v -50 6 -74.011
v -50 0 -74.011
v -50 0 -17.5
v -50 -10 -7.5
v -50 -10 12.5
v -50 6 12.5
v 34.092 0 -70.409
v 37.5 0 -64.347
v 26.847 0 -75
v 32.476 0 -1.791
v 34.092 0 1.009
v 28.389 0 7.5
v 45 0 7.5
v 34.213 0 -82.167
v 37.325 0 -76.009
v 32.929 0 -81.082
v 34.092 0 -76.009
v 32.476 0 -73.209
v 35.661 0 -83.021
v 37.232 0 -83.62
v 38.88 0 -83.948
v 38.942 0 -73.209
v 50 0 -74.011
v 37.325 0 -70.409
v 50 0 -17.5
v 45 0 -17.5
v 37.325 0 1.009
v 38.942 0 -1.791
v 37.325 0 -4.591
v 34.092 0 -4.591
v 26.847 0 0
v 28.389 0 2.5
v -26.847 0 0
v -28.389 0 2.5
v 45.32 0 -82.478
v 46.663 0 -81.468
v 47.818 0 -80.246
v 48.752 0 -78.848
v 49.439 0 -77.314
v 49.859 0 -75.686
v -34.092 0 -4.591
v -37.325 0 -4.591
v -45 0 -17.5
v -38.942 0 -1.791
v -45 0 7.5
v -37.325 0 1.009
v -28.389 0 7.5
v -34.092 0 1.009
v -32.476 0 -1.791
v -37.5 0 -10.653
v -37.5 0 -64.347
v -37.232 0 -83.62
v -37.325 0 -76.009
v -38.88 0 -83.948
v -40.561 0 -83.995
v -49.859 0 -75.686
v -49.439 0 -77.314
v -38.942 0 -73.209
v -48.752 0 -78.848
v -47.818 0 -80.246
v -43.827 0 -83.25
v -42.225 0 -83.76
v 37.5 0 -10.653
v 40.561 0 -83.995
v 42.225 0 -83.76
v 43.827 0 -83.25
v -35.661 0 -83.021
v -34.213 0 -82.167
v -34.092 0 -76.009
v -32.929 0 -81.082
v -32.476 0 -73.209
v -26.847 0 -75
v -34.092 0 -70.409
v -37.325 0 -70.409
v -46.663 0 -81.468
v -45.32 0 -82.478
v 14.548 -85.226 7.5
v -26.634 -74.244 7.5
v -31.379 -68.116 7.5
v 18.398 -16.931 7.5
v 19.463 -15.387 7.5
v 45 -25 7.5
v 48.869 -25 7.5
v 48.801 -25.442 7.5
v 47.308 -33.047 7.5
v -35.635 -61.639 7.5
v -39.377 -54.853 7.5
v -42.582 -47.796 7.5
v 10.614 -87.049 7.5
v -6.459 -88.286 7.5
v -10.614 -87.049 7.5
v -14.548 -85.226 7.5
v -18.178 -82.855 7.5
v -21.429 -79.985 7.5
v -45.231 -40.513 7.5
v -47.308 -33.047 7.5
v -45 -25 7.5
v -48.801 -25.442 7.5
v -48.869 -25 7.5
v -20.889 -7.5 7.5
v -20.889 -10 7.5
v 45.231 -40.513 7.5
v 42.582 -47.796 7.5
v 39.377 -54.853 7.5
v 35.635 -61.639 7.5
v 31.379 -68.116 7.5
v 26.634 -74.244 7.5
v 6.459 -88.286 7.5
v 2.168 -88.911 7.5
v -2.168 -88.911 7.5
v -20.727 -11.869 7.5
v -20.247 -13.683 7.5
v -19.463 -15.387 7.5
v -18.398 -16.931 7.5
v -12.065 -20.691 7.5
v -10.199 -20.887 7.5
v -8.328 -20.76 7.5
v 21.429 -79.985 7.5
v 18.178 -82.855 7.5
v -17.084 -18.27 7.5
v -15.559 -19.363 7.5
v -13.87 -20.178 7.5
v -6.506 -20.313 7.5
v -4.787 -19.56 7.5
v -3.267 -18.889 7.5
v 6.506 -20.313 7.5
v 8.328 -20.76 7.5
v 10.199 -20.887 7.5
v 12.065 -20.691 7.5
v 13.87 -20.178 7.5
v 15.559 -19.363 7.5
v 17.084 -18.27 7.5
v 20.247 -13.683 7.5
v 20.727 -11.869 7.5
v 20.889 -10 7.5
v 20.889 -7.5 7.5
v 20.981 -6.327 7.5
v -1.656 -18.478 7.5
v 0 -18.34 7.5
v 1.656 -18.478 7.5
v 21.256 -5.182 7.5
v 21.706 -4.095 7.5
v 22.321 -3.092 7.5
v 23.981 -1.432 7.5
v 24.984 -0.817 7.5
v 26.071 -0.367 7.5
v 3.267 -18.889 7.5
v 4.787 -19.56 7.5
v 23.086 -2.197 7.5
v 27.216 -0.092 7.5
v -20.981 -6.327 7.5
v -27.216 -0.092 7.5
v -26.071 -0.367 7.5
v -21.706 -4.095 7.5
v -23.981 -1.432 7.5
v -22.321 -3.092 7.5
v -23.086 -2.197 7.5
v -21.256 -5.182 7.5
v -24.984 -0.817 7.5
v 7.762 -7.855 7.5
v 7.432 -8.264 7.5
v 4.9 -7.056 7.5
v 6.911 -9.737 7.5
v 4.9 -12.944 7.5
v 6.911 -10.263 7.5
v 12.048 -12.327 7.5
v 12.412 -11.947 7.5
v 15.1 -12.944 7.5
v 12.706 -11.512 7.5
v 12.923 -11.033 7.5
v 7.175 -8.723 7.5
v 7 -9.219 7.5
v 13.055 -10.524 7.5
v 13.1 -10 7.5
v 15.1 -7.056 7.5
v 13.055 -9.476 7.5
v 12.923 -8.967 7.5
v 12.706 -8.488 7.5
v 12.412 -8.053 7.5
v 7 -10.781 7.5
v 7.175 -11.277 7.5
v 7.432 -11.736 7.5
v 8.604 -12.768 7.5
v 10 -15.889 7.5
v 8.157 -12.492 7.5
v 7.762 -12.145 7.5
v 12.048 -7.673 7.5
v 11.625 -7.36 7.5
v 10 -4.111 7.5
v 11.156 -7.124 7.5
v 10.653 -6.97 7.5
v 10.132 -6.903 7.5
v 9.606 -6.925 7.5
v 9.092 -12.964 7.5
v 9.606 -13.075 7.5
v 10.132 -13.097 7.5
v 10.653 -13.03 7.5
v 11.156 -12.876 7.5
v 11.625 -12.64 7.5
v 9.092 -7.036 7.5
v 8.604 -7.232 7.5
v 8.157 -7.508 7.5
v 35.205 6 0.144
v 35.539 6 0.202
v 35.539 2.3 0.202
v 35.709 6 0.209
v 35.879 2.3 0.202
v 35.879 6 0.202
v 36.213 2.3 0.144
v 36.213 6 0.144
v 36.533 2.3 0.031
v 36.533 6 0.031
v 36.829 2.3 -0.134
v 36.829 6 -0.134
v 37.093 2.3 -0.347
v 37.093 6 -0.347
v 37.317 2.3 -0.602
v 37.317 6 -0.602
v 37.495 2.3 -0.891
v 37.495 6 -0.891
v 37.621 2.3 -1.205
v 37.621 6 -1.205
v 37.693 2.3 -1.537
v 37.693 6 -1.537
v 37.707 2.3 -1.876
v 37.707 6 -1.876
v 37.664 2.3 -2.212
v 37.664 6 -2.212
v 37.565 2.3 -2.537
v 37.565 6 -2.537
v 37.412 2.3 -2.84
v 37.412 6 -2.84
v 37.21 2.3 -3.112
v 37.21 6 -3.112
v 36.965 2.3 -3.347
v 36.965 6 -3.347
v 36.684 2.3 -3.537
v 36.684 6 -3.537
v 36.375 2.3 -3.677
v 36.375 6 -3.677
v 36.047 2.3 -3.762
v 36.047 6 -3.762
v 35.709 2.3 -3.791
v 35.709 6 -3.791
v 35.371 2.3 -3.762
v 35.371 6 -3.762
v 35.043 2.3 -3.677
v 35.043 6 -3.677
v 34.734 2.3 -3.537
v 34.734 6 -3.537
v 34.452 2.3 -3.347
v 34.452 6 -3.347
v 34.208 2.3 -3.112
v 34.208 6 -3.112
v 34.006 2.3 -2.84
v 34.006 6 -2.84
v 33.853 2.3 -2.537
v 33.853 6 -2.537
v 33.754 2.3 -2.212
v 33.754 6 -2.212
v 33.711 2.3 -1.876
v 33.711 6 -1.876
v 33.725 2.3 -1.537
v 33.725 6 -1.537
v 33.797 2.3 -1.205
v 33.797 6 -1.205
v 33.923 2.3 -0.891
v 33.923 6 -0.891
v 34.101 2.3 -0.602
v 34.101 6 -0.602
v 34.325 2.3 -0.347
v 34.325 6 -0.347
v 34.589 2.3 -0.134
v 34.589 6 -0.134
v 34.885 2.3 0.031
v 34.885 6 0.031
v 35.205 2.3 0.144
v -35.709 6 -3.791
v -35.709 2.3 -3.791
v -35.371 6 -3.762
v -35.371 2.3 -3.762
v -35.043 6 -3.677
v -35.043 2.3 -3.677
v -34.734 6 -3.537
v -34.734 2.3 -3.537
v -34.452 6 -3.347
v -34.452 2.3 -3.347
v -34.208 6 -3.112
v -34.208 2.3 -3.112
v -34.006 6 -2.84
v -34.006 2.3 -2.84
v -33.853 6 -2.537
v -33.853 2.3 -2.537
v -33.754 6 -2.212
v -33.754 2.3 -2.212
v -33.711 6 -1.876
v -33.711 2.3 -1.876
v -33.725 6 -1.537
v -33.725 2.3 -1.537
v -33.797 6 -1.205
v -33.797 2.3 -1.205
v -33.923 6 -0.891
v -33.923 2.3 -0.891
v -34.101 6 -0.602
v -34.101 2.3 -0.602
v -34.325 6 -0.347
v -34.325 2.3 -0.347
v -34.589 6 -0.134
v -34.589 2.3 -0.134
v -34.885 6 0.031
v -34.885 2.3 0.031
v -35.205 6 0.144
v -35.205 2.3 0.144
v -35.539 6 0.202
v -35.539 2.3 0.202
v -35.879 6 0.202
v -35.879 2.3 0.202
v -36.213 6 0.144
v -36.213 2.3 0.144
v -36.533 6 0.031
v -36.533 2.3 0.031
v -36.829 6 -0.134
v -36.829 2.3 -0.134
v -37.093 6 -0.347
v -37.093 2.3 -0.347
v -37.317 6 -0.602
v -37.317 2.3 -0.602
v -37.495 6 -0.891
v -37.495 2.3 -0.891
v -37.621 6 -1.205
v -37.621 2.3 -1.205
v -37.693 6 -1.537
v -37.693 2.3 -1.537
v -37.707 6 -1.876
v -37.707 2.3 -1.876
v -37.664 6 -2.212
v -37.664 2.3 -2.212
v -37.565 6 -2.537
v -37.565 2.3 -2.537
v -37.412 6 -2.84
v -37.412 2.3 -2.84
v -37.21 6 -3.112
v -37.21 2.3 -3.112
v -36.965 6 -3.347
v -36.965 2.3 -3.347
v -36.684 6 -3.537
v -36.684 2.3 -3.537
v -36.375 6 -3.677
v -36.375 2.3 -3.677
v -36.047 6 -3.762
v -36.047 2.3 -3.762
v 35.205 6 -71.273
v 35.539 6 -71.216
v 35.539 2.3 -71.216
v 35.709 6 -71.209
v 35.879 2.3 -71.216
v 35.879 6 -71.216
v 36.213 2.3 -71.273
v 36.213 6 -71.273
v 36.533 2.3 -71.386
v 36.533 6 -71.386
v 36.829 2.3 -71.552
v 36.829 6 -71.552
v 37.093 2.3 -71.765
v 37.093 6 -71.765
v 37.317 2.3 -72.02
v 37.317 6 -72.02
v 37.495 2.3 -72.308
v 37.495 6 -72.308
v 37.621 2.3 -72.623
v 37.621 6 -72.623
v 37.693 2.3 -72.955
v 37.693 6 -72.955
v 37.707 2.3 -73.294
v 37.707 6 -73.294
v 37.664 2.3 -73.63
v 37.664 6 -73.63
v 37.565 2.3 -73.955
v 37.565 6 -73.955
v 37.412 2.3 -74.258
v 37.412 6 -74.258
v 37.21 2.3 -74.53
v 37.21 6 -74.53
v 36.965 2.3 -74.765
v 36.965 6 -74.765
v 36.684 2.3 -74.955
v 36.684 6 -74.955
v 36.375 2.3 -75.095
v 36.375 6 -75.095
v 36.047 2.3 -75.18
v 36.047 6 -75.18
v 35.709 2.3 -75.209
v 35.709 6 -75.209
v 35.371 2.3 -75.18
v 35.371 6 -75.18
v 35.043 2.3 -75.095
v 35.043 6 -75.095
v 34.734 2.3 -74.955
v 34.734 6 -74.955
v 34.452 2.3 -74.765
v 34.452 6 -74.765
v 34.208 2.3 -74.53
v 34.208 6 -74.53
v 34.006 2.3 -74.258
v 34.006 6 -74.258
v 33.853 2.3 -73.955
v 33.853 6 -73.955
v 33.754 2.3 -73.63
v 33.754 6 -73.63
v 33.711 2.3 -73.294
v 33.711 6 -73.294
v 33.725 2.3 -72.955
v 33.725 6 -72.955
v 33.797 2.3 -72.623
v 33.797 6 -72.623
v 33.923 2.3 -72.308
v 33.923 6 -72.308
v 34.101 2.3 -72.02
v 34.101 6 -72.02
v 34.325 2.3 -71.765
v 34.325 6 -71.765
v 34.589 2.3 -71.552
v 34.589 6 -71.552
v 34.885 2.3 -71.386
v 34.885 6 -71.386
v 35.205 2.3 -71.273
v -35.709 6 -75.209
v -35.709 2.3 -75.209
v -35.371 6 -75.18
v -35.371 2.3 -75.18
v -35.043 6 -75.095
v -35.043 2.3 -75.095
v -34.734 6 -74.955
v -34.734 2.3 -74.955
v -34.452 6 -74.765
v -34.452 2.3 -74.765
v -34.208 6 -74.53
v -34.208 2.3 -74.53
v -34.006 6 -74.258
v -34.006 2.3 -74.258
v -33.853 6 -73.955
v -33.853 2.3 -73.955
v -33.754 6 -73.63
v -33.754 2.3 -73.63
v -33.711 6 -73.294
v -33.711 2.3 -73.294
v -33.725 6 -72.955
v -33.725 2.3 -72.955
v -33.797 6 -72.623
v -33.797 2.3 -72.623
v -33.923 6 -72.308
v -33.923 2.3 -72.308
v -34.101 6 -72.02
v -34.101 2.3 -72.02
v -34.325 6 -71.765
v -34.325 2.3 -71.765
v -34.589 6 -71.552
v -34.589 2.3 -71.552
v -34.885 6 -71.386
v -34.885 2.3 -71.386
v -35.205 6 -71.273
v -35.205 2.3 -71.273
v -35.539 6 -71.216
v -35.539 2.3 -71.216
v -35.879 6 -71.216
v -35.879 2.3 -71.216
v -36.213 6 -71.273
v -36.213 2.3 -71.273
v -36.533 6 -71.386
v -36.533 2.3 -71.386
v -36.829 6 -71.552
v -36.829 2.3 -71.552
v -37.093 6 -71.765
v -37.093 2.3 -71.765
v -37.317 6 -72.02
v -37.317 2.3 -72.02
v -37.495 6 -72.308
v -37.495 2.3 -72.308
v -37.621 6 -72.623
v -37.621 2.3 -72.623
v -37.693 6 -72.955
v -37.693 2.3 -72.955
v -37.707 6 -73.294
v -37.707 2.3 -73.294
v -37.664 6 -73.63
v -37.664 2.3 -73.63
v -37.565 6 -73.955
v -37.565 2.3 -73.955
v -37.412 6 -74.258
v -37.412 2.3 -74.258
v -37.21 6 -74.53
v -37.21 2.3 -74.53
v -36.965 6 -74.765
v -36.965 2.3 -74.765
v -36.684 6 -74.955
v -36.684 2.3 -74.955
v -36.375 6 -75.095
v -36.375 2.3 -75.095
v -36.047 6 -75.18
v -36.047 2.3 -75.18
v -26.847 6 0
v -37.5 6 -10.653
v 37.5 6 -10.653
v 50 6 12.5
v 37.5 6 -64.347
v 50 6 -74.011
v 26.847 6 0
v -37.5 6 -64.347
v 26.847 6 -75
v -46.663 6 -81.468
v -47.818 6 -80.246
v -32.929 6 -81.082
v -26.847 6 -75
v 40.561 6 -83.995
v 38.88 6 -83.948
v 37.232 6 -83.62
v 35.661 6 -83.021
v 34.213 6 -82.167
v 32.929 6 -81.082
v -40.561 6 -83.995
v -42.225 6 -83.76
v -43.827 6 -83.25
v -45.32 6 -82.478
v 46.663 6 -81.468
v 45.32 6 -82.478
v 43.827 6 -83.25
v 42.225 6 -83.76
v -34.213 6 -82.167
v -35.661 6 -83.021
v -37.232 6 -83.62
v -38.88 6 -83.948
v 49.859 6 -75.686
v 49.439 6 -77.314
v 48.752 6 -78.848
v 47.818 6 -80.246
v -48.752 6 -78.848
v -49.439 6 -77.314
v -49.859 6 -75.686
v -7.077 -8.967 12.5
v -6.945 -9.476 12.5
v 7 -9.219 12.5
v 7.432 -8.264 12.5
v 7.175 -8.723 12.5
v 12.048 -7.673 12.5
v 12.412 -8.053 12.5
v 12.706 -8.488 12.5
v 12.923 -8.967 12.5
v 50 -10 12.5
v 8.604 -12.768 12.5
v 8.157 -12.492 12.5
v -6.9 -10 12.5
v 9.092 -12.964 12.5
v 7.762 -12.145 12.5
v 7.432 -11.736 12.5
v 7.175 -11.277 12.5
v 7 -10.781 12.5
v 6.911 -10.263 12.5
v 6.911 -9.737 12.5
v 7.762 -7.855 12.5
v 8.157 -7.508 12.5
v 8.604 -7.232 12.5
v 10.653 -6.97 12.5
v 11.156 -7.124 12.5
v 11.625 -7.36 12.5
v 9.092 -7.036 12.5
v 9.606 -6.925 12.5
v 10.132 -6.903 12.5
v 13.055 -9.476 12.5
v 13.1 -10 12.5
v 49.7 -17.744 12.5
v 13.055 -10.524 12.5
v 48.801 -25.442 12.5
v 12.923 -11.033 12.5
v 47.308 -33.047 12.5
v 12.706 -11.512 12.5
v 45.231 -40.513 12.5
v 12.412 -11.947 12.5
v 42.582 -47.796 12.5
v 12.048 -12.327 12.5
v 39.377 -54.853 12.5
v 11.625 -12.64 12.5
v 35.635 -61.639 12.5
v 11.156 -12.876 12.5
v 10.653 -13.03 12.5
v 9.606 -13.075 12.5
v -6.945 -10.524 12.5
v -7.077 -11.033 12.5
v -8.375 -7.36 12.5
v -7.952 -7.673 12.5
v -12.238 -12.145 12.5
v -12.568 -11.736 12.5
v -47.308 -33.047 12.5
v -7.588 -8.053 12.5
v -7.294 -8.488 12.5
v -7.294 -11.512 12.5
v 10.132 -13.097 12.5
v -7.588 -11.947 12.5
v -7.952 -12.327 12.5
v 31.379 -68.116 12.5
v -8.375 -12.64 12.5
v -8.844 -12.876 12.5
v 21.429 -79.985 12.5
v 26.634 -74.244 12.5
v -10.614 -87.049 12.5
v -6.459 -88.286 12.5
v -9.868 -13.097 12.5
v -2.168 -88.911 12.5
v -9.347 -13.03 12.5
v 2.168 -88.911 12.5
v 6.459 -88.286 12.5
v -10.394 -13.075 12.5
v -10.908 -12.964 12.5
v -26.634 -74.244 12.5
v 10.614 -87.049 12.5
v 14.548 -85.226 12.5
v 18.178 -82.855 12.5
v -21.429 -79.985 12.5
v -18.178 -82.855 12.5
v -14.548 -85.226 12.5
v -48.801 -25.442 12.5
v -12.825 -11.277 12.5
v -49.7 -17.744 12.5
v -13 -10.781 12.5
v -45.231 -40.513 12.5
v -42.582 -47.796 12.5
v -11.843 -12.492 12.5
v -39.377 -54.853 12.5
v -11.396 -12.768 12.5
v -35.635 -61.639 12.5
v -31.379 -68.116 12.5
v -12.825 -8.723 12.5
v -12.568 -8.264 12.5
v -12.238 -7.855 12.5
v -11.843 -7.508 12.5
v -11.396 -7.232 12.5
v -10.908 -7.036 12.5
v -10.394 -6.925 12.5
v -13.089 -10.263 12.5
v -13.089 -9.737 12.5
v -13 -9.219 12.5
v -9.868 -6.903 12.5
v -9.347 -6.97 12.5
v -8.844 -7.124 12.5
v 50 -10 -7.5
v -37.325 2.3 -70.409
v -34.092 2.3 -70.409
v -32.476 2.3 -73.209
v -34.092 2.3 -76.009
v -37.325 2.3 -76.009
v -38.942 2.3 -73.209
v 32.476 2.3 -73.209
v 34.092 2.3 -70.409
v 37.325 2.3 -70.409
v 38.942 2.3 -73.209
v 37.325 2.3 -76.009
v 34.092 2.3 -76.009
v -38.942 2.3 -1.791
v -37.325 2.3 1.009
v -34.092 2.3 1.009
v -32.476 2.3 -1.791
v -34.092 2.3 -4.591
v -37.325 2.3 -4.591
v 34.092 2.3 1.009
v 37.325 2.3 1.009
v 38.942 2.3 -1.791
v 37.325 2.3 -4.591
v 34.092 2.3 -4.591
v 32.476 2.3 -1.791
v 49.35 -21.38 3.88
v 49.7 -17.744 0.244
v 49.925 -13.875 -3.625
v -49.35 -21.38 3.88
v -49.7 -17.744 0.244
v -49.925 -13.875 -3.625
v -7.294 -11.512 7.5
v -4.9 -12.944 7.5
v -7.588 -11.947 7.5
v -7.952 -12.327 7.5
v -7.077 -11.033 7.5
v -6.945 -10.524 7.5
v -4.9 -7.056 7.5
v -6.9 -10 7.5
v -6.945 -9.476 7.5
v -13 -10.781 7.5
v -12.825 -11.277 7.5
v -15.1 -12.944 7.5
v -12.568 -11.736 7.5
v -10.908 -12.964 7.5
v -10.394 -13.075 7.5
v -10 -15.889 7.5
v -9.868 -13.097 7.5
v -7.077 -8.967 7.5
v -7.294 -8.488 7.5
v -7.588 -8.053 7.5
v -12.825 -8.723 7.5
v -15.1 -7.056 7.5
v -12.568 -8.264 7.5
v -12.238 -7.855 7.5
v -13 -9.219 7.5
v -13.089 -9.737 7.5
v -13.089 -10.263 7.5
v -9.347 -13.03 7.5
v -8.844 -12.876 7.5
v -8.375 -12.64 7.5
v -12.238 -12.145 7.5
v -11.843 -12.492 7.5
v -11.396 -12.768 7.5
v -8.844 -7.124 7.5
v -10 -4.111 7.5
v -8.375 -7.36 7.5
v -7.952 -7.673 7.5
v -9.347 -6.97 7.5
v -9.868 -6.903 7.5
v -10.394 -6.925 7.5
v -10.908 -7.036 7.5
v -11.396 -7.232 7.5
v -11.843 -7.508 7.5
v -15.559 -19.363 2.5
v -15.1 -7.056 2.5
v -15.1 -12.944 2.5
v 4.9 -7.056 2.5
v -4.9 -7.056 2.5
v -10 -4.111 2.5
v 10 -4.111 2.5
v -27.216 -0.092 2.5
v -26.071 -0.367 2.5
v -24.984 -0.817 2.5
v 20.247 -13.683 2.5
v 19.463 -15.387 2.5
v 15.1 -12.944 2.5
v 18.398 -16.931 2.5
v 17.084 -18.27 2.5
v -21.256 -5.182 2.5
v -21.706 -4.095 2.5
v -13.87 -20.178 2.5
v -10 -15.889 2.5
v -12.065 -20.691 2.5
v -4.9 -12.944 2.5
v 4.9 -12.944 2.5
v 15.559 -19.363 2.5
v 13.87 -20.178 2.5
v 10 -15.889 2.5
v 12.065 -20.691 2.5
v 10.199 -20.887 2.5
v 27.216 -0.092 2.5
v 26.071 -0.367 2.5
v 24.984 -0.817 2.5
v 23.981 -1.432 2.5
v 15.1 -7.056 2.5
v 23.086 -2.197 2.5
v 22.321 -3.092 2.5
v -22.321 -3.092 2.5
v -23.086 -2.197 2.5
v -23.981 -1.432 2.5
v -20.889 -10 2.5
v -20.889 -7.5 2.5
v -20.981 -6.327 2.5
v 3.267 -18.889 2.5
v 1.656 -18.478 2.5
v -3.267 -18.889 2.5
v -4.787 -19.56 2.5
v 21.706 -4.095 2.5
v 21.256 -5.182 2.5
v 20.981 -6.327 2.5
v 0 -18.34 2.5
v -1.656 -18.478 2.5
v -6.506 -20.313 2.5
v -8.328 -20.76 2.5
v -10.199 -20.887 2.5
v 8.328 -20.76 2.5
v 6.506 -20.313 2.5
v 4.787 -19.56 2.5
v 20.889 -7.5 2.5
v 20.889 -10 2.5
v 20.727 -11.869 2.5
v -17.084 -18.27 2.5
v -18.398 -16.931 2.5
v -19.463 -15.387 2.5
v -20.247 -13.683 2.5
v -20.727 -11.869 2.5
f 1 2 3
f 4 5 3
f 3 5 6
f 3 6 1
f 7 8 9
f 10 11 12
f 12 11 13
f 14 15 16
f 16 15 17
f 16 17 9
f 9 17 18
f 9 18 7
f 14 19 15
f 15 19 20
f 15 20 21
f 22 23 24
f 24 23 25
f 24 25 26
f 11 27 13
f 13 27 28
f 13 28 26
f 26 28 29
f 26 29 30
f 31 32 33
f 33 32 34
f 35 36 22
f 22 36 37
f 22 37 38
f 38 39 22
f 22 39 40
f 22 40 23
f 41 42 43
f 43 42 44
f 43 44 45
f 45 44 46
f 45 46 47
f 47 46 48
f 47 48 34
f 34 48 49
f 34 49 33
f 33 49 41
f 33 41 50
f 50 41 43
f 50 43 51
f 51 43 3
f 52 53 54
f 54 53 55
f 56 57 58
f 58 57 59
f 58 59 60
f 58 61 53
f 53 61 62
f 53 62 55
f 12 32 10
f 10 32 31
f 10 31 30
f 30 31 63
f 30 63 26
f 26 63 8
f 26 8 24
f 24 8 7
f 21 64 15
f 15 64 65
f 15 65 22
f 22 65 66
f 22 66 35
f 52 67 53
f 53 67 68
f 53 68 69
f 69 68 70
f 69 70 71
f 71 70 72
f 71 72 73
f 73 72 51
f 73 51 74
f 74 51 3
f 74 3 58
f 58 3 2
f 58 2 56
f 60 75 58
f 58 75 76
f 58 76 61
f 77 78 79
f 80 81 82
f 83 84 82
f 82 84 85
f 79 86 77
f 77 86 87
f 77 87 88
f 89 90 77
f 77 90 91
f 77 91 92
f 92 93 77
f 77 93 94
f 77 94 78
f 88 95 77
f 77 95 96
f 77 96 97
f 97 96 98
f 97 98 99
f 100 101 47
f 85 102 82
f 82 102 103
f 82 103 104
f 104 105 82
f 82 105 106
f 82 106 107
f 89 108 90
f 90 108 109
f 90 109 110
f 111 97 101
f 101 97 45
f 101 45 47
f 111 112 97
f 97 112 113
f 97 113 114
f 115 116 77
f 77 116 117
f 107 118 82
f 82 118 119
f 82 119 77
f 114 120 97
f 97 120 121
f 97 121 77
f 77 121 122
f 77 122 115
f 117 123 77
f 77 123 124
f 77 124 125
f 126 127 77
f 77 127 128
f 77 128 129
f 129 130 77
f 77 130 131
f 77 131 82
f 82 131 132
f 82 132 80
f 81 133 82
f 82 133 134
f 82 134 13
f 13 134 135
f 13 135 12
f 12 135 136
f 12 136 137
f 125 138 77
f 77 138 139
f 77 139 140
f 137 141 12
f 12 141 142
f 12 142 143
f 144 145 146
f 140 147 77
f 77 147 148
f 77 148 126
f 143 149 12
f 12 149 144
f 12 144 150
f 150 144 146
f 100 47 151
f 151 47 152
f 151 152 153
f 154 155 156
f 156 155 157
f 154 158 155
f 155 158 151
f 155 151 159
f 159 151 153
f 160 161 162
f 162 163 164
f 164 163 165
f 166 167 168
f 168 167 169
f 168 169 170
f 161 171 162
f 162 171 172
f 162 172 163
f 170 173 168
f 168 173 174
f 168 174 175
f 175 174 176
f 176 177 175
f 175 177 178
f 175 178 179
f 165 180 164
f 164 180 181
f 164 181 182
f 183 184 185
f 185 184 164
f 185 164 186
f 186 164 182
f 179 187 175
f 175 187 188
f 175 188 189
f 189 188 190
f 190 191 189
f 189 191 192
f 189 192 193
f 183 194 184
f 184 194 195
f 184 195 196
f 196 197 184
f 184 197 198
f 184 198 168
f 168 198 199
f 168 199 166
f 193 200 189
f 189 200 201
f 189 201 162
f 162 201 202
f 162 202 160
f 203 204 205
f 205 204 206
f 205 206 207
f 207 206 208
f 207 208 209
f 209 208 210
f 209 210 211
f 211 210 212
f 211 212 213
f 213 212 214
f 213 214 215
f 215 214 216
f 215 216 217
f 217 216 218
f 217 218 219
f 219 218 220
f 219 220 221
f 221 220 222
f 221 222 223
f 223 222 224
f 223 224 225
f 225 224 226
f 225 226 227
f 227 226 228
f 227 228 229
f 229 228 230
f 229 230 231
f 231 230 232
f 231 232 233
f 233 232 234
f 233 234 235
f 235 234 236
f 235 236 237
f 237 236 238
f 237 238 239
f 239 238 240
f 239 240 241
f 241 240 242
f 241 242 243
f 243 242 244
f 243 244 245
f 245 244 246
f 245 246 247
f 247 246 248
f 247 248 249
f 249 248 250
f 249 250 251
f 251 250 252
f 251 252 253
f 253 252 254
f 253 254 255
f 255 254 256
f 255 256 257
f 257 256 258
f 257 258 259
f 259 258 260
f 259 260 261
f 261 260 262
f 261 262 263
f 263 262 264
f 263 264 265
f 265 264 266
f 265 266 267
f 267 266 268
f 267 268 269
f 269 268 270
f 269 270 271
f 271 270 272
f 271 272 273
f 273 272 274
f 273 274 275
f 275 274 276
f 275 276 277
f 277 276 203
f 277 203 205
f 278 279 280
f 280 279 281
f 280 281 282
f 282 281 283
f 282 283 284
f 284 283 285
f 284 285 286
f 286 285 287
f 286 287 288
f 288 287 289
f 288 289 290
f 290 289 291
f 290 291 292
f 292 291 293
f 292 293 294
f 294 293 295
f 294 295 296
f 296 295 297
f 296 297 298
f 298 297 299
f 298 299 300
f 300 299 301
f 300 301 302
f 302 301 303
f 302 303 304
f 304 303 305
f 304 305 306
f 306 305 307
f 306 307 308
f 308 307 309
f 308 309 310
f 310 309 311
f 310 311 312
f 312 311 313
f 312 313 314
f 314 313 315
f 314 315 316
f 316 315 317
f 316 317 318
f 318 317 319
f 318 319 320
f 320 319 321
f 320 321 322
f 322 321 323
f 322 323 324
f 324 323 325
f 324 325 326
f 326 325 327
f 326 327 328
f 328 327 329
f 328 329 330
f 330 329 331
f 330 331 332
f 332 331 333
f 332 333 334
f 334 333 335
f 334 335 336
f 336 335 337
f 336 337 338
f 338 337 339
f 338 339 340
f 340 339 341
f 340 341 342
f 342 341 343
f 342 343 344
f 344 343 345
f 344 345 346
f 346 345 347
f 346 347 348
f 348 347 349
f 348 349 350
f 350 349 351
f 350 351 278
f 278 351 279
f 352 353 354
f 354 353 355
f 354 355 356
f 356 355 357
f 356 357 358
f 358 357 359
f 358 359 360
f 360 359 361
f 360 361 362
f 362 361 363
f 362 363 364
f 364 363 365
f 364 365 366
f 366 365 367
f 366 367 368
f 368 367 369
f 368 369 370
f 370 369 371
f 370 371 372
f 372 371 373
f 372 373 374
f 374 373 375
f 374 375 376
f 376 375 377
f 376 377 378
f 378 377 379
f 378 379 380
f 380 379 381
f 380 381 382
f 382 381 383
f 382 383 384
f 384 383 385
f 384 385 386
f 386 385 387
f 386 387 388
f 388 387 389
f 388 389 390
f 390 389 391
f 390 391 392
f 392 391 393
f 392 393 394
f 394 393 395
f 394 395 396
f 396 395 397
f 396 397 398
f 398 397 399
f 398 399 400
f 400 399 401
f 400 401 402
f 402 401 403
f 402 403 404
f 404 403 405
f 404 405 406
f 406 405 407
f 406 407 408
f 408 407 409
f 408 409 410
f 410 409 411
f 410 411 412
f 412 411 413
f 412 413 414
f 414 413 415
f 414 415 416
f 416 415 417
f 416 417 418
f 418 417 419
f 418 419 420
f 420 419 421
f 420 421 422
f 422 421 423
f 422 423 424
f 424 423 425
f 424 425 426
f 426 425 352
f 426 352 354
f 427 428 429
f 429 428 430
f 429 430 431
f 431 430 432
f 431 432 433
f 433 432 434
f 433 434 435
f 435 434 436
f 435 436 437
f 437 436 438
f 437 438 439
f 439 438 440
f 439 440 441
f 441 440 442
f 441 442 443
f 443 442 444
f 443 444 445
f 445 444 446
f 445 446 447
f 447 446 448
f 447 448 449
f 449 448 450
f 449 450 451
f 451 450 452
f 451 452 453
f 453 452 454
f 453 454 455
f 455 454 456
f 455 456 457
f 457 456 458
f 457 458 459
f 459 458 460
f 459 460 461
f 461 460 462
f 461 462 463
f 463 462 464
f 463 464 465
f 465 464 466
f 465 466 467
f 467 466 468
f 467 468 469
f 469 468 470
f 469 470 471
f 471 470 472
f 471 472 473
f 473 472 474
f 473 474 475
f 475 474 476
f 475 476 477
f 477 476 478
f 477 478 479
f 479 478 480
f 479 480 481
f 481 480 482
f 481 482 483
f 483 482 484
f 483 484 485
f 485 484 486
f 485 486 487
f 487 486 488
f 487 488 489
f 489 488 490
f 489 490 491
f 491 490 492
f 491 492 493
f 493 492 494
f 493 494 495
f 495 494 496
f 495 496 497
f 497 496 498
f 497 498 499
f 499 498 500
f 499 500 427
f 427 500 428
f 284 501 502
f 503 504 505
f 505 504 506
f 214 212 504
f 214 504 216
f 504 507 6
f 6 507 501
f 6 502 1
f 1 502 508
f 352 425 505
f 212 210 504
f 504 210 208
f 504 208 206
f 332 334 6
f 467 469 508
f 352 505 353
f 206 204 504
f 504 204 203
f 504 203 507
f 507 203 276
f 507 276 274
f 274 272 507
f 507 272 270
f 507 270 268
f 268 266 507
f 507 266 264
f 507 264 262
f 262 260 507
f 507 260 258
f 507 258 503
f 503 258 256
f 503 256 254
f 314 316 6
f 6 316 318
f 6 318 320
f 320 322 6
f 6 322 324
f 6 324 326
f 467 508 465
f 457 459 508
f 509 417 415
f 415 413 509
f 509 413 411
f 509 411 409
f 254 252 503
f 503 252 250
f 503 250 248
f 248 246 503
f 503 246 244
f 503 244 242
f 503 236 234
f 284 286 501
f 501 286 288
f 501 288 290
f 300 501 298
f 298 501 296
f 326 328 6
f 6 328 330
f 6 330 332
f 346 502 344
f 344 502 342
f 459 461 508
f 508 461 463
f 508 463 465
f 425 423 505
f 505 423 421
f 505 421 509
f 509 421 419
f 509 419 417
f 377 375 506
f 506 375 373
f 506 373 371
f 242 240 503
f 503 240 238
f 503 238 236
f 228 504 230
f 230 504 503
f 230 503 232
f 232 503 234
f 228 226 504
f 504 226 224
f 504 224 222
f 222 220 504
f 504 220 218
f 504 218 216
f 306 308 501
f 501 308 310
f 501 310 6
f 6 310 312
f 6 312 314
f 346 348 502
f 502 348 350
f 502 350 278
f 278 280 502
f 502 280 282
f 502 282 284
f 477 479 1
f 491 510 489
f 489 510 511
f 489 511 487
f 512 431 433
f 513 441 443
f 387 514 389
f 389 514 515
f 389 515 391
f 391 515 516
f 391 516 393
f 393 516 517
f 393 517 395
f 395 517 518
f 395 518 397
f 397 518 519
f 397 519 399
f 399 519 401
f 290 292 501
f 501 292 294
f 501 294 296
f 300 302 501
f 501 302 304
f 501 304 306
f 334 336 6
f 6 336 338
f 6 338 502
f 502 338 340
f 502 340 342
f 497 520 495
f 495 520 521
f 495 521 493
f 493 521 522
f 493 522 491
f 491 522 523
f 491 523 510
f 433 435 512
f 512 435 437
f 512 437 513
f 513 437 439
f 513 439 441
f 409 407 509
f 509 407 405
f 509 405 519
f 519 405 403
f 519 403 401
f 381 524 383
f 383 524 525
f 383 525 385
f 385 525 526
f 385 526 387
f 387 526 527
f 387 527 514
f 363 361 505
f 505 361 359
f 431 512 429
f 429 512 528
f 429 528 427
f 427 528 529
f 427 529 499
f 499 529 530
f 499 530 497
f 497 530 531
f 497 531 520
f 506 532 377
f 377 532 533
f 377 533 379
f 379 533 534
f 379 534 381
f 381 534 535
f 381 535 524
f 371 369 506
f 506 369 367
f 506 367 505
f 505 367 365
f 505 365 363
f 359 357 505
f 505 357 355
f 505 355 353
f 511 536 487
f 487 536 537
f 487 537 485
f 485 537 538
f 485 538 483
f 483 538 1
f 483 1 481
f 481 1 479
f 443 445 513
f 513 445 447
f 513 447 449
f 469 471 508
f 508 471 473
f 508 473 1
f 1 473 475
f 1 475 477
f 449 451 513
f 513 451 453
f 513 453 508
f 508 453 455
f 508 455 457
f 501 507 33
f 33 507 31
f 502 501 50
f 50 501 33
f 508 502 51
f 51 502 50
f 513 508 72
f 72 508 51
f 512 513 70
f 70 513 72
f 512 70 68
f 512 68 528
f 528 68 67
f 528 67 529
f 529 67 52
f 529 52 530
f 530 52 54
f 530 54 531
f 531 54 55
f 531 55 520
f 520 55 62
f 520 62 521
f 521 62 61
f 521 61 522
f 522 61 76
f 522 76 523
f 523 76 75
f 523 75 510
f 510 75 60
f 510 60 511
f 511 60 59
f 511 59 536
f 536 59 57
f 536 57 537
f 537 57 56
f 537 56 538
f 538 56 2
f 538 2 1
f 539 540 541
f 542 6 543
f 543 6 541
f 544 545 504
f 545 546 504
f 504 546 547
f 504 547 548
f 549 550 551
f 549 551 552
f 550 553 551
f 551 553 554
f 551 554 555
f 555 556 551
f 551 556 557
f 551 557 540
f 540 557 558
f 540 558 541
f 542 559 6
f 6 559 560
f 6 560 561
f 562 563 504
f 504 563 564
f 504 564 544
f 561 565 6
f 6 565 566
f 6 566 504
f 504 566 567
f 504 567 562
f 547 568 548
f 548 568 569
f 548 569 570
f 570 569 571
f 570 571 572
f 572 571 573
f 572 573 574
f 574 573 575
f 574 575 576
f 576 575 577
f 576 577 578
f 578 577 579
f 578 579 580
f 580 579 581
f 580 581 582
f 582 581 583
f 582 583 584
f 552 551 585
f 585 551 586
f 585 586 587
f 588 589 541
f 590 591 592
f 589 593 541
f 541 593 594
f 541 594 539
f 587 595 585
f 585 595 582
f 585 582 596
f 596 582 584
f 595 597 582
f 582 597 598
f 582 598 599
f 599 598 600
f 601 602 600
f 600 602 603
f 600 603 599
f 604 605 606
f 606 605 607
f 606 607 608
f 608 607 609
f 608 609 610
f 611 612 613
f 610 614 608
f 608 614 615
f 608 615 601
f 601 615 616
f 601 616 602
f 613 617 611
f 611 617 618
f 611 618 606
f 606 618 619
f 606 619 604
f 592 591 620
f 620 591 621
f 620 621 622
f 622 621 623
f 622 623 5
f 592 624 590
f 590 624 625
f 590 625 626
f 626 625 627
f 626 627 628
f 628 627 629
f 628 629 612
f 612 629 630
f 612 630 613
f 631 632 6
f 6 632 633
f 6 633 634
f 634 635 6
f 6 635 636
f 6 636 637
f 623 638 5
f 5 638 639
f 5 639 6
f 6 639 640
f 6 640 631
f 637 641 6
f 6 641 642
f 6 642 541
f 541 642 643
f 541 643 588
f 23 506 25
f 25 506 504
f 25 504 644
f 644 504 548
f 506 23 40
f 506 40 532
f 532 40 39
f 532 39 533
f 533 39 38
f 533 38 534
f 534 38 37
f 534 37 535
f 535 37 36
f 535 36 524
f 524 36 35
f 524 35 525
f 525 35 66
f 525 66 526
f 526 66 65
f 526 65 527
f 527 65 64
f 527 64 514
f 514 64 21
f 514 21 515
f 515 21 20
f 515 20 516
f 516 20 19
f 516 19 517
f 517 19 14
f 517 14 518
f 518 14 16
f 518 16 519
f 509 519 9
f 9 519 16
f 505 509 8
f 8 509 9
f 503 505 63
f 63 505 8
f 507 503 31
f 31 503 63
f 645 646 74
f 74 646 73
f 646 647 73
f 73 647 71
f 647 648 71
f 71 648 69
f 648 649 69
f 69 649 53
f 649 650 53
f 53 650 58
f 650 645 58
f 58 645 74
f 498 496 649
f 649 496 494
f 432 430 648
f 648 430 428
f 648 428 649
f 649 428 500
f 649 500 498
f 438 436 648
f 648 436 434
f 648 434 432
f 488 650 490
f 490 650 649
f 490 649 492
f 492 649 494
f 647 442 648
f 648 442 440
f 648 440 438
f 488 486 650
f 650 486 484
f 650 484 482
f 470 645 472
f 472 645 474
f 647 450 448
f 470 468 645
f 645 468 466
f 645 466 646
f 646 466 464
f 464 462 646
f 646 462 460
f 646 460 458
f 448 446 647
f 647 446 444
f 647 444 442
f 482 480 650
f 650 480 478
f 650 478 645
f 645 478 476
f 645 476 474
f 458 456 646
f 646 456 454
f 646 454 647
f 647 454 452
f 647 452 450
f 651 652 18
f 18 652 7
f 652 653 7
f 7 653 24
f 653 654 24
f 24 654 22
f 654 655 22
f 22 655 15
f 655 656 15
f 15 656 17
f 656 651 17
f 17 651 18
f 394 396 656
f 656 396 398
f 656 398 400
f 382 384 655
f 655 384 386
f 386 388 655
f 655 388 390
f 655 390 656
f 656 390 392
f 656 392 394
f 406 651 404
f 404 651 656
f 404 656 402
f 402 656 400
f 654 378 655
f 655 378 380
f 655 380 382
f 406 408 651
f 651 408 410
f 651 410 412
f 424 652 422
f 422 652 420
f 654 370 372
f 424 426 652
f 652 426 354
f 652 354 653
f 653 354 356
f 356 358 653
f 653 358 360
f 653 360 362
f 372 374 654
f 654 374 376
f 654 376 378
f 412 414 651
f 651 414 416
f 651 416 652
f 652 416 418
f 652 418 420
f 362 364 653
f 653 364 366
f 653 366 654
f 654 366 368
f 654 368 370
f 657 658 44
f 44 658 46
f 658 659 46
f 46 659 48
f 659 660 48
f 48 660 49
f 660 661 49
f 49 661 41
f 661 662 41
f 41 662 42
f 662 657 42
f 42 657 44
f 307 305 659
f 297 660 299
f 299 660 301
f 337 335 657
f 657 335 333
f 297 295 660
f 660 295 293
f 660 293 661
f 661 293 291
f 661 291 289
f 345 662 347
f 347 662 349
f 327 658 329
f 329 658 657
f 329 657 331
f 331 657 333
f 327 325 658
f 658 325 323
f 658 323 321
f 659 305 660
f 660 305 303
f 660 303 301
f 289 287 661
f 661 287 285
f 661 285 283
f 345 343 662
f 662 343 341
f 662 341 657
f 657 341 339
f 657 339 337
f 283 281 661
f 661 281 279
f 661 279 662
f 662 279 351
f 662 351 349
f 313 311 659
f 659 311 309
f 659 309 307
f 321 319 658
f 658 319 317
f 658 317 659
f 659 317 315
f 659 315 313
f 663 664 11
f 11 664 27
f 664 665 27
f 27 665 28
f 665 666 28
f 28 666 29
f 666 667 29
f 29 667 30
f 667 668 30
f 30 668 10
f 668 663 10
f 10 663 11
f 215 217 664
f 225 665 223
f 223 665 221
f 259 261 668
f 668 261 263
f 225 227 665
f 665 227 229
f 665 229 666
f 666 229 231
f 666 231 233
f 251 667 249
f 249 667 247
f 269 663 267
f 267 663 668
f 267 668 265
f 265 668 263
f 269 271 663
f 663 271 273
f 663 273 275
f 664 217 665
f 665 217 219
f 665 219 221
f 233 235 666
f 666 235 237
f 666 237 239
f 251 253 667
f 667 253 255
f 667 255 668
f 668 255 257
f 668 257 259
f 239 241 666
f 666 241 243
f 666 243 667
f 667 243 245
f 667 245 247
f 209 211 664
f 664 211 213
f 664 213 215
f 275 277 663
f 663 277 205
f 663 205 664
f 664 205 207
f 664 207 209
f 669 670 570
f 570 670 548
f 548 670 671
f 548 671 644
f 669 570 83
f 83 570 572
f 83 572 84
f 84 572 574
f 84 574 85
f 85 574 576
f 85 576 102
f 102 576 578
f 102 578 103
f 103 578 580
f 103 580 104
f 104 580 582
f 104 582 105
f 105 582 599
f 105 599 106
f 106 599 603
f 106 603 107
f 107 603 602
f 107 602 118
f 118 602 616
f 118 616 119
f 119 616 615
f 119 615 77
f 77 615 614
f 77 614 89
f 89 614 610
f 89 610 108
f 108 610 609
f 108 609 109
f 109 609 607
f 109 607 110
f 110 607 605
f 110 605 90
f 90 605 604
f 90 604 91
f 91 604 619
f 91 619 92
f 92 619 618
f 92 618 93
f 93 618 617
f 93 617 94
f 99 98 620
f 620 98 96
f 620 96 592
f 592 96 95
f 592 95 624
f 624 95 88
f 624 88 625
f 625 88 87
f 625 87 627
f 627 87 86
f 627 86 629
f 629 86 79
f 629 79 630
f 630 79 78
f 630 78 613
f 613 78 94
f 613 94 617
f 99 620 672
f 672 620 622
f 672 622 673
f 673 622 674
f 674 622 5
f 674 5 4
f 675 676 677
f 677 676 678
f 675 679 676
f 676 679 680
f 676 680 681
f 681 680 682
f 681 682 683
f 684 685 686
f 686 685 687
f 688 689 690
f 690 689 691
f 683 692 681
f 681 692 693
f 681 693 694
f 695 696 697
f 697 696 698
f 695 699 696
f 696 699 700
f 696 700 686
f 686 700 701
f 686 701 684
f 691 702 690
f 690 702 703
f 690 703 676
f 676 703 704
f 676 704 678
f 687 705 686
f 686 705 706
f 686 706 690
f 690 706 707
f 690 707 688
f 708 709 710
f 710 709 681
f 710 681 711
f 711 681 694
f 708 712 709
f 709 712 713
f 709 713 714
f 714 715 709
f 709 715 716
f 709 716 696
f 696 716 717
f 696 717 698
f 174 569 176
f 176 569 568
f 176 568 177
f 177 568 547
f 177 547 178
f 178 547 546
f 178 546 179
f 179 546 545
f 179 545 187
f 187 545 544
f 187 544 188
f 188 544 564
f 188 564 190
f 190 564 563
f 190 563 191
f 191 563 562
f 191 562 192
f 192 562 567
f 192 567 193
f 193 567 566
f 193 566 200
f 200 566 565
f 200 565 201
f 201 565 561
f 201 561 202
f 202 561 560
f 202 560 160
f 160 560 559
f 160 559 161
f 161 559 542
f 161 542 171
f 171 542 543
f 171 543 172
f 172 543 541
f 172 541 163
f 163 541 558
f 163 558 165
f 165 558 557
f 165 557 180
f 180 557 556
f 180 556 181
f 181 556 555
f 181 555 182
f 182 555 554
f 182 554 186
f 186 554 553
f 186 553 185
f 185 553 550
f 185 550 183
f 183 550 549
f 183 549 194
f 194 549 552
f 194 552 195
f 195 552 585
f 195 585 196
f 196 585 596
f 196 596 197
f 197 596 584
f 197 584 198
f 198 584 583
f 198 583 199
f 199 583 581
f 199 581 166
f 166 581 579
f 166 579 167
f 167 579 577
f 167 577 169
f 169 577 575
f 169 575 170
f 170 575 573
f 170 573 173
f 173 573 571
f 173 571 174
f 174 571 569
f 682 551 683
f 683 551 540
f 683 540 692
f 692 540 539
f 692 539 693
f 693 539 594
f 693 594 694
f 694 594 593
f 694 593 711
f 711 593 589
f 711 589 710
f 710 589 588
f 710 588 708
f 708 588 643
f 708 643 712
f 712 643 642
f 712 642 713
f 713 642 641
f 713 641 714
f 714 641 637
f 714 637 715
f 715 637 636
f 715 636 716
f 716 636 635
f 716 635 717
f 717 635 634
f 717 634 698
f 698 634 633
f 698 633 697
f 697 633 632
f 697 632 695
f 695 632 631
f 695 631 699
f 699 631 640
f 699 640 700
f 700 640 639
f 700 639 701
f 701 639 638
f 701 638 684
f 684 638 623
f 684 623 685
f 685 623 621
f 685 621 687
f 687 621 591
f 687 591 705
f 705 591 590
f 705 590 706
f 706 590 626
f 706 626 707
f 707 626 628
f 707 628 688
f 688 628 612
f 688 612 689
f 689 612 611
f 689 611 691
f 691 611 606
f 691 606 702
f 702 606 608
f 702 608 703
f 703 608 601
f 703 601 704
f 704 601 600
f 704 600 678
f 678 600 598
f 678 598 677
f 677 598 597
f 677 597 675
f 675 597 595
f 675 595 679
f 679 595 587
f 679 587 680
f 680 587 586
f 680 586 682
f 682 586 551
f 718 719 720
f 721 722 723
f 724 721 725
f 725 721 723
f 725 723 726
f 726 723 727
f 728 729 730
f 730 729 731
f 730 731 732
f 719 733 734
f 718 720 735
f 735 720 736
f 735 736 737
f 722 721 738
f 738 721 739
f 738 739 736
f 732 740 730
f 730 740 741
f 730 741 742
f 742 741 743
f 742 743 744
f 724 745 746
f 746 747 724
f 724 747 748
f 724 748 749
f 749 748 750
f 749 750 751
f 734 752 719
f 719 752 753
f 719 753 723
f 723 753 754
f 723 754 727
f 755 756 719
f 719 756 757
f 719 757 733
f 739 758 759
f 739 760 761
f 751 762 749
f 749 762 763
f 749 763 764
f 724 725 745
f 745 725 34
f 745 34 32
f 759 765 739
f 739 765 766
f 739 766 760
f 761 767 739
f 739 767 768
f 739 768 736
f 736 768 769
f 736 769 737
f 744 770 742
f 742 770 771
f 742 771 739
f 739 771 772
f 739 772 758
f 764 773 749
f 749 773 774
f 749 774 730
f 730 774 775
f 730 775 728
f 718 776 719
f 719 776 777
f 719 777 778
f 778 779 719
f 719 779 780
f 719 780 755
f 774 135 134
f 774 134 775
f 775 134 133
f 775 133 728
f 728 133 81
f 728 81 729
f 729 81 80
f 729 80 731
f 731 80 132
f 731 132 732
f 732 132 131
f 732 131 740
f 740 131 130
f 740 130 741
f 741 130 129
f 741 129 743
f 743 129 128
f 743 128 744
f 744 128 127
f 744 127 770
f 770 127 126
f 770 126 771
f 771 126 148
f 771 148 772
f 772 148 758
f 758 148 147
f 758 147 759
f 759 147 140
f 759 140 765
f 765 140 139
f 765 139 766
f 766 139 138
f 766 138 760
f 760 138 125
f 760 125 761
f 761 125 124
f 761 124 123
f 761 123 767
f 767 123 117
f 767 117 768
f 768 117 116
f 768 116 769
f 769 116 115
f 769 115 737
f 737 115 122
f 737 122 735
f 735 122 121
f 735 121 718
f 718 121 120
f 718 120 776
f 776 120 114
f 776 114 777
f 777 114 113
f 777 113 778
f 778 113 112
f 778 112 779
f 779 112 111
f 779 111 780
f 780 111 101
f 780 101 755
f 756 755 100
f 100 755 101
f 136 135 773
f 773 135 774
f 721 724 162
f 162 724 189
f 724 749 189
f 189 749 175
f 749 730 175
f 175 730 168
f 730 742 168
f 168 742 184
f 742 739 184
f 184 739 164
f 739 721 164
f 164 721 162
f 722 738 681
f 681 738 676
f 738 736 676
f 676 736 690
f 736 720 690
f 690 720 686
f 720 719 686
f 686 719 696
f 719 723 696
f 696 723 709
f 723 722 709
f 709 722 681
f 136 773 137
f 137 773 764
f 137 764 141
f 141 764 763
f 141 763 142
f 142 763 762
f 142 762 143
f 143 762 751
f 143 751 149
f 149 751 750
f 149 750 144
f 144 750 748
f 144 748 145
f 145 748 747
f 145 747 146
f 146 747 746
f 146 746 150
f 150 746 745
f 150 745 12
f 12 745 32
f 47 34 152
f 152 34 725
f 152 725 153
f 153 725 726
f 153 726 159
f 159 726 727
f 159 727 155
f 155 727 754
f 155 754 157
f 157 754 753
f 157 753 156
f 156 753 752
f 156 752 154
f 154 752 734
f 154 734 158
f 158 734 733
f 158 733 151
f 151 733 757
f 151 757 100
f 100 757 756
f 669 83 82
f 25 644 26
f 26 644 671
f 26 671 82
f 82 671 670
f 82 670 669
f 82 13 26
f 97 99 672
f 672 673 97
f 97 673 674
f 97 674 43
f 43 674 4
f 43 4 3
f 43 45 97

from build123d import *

# Parameters (mm, degrees)
SKETCH1_R           = 2
BOSS_EXTRUDE1_DEPTH = 6
CUT_EXTRUDE1_DEPTH  = 2.3
SKETCH3_R           = 3.1
BOSS_EXTRUDE2_DEPTH = 5
BOSS_EXTRUDE3_DEPTH = 5
FILLET1_R           = 7.5
BOSS_EXTRUDE4_DEPTH = 5
CUT_EXTRUDE2_REACH  = 139.089


with BuildPart() as part:
    # Sketch1 → Boss-Extrude1 (new body)
    with BuildSketch(Plane(origin=(0, 0, 0), x_dir=(1, 0, 0), z_dir=(0, 1, 0))):
        with BuildLine():
            Line((26.846717088, 0), (37.5, 10.653282912))
            Line((37.5, 10.653282912), (37.5, 64.346717088))
            Line((37.5, 64.346717088), (26.846717088, 75))
            Line((26.846717088, 75), (32.928932188, 81.0822151))
            ThreePointArc((32.928932188, 81.0822151), (43.826834324, 83.249942613), (50, 74.011147288))
            Line((50, 74.011147288), (50, -12.5))
            Line((50, -12.5), (-50, -12.5))
            Line((-50, -12.5), (-50, 74.011147288))
            ThreePointArc((-50, 74.011147288), (-43.826834324, 83.249942613), (-32.928932188, 81.0822151))
            Line((-32.928932188, 81.0822151), (-26.846717088, 75))
            Line((-26.846717088, 75), (-37.5, 64.346717088))
            Line((-37.5, 64.346717088), (-37.5, 10.653282912))
            Line((-37.5, 10.653282912), (-26.846717088, 0))
            Line((-26.846717088, 0), (26.846717088, 0))
        make_face()
        with Locations(Location((35.70889245, 1.79110755, 0), (0, 0, 270))):
            Circle(SKETCH1_R, mode=Mode.SUBTRACT)
        with Locations(Location((-35.70889245, 1.79110755, 0), (0, 0, 90))):
            Circle(SKETCH1_R, mode=Mode.SUBTRACT)
        with Locations(Location((35.70889245, 73.20889245, 0), (0, 0, 270))):
            Circle(SKETCH1_R, mode=Mode.SUBTRACT)
        with Locations(Location((-35.70889245, 73.20889245, 0), (0, 0, 90))):
            Circle(SKETCH1_R, mode=Mode.SUBTRACT)
    extrude(amount=BOSS_EXTRUDE1_DEPTH)

    # Sketch2 → Cut-Extrude1 (cut)
    with BuildSketch(Plane.XZ):
        Polygon((-37.325473204, -70.40889245), (-38.942053957, -73.20889245), (-37.325473204, -76.00889245), (-34.092311696, -76.00889245), (-32.475730942, -73.20889245), (-34.092311696, -70.40889245), align=None)
        Polygon((-38.942053957, -1.79110755), (-37.325473204, -4.59110755), (-34.092311696, -4.59110755), (-32.475730942, -1.79110755), (-34.092311696, 1.00889245), (-37.325473204, 1.00889245), align=None)
        Polygon((34.092311696, 1.00889245), (32.475730942, -1.79110755), (34.092311696, -4.59110755), (37.325473204, -4.59110755), (38.942053957, -1.79110755), (37.325473204, 1.00889245), align=None)
        Polygon((32.475730942, -73.20889245), (34.092311696, -76.00889245), (37.325473204, -76.00889245), (38.942053957, -73.20889245), (37.325473204, -70.40889245), (34.092311696, -70.40889245), align=None)
    extrude(amount=-CUT_EXTRUDE1_DEPTH, mode=Mode.SUBTRACT)

    # Sketch3 → Boss-Extrude2 (add)
    with BuildSketch(Plane.XY.offset(12.5)):
        with BuildLine():
            Line((-50, 0), (50, 0))
            Line((50, 0), (50, -10))
            ThreePointArc((50, -10), (42.582009977, -47.796447301), (21.428571429, -79.985421222))
            ThreePointArc((21.428571429, -79.985421222), (0, -88.989794856), (-21.428571429, -79.985421222))
            ThreePointArc((-21.428571429, -79.985421222), (-42.582009977, -47.796447301), (-50, -10))
            Line((-50, -10), (-50, 0))
        make_face()
        with Locations((10, -10)):
            Circle(SKETCH3_R, mode=Mode.SUBTRACT)
        with Locations((-10, -10)):
            Circle(SKETCH3_R, mode=Mode.SUBTRACT)
    extrude(amount=-BOSS_EXTRUDE2_DEPTH)

    # Sketch4 → Boss-Extrude3 (add)
    with BuildSketch(Plane(origin=(0, 0, 7.5), x_dir=(-1, 0, 0), z_dir=(0, 0, -1))):
        with BuildLine():
            Line((-20.888972746, -10), (-20.888972746, 0))
            Line((-20.888972746, 0), (0, 0))
            Line((0, 0), (20.888972746, 0))
            Line((20.888972746, 0), (20.888972746, -10))
            ThreePointArc((20.888972746, -10), (15.559129957, -19.36300174), (4.787214825, -19.560156807))
            ThreePointArc((4.787214825, -19.560156807), (0, -18.339825037), (-4.787214825, -19.560156807))
            ThreePointArc((-4.787214825, -19.560156807), (-15.559129957, -19.36300174), (-20.888972746, -10))
        make_face()
        Polygon((-10, -4.111027254), (-15.1, -7.055513627), (-15.1, -12.944486373), (-10, -15.888972746), (-4.9, -12.944486373), (-4.9, -7.055513627), align=None, mode=Mode.SUBTRACT)
        Polygon((4.9, -7.055513627), (10, -4.111027254), (15.1, -7.055513627), (15.1, -12.944486373), (10, -15.888972746), (4.9, -12.944486373), align=None, mode=Mode.SUBTRACT)
    extrude(amount=BOSS_EXTRUDE3_DEPTH)

    # Fillet1
    fillet1_edges = [part.edges().sort_by_distance(p)[0] for p in [
        (-20.888972746, 0, 5),
        (20.888972746, 0, 5),
    ]]
    fillet(fillet1_edges, radius=FILLET1_R)

    # Sketch5 → Boss-Extrude4 (add)
    with BuildSketch(Plane(origin=(50, 0, 0), x_dir=(0, 0, -1), z_dir=(1, 0, 0))):
        Polygon((17.5, 0), (-7.5, 0), (-7.5, -25), align=None)
    boss_extrude4 = extrude(amount=-BOSS_EXTRUDE4_DEPTH)

    # Mirror1: Boss-Extrude4 across plane
    add(boss_extrude4.mirror(Plane(origin=(0, 0, 0), x_dir=(0, 0, 1), z_dir=(1, 0, 0))))

    # Sketch6 → Cut-Extrude2 (cut, up to next)
    with BuildSketch(Plane.XY.offset(7.5), mode=Mode.PRIVATE) as cut_extrude2_sk1:
        with BuildLine():
            Line((50, -25), (50, -10))
            ThreePointArc((50, -10), (49.71674876, -17.521304187), (48.868599666, -25))
            Line((48.868599666, -25), (50, -25))
        make_face()
    cut_extrude2_tool1 = extrude(cut_extrude2_sk1.sketch, amount=-CUT_EXTRUDE2_REACH, mode=Mode.PRIVATE) & part.part
    # Sketch6 → Cut-Extrude2 (cut, up to next)
    with BuildSketch(Plane.XY.offset(7.5), mode=Mode.PRIVATE) as cut_extrude2_sk2:
        with BuildLine():
            Line((-50, -10), (-50, -25))
            Line((-50, -25), (-48.868599666, -25))
            ThreePointArc((-48.868599666, -25), (-49.71674876, -17.521304187), (-50, -10))
        make_face()
    cut_extrude2_tool2 = extrude(cut_extrude2_sk2.sketch, amount=-CUT_EXTRUDE2_REACH, mode=Mode.PRIVATE) & part.part
    add(cut_extrude2_tool1.solids().sort_by_distance((49.660912, -21.254256, 7.5))[0], mode=Mode.SUBTRACT)
    add(cut_extrude2_tool2.solids().sort_by_distance((-49.660912, -21.254256, 7.5))[0], mode=Mode.SUBTRACT)


solid = part.part
